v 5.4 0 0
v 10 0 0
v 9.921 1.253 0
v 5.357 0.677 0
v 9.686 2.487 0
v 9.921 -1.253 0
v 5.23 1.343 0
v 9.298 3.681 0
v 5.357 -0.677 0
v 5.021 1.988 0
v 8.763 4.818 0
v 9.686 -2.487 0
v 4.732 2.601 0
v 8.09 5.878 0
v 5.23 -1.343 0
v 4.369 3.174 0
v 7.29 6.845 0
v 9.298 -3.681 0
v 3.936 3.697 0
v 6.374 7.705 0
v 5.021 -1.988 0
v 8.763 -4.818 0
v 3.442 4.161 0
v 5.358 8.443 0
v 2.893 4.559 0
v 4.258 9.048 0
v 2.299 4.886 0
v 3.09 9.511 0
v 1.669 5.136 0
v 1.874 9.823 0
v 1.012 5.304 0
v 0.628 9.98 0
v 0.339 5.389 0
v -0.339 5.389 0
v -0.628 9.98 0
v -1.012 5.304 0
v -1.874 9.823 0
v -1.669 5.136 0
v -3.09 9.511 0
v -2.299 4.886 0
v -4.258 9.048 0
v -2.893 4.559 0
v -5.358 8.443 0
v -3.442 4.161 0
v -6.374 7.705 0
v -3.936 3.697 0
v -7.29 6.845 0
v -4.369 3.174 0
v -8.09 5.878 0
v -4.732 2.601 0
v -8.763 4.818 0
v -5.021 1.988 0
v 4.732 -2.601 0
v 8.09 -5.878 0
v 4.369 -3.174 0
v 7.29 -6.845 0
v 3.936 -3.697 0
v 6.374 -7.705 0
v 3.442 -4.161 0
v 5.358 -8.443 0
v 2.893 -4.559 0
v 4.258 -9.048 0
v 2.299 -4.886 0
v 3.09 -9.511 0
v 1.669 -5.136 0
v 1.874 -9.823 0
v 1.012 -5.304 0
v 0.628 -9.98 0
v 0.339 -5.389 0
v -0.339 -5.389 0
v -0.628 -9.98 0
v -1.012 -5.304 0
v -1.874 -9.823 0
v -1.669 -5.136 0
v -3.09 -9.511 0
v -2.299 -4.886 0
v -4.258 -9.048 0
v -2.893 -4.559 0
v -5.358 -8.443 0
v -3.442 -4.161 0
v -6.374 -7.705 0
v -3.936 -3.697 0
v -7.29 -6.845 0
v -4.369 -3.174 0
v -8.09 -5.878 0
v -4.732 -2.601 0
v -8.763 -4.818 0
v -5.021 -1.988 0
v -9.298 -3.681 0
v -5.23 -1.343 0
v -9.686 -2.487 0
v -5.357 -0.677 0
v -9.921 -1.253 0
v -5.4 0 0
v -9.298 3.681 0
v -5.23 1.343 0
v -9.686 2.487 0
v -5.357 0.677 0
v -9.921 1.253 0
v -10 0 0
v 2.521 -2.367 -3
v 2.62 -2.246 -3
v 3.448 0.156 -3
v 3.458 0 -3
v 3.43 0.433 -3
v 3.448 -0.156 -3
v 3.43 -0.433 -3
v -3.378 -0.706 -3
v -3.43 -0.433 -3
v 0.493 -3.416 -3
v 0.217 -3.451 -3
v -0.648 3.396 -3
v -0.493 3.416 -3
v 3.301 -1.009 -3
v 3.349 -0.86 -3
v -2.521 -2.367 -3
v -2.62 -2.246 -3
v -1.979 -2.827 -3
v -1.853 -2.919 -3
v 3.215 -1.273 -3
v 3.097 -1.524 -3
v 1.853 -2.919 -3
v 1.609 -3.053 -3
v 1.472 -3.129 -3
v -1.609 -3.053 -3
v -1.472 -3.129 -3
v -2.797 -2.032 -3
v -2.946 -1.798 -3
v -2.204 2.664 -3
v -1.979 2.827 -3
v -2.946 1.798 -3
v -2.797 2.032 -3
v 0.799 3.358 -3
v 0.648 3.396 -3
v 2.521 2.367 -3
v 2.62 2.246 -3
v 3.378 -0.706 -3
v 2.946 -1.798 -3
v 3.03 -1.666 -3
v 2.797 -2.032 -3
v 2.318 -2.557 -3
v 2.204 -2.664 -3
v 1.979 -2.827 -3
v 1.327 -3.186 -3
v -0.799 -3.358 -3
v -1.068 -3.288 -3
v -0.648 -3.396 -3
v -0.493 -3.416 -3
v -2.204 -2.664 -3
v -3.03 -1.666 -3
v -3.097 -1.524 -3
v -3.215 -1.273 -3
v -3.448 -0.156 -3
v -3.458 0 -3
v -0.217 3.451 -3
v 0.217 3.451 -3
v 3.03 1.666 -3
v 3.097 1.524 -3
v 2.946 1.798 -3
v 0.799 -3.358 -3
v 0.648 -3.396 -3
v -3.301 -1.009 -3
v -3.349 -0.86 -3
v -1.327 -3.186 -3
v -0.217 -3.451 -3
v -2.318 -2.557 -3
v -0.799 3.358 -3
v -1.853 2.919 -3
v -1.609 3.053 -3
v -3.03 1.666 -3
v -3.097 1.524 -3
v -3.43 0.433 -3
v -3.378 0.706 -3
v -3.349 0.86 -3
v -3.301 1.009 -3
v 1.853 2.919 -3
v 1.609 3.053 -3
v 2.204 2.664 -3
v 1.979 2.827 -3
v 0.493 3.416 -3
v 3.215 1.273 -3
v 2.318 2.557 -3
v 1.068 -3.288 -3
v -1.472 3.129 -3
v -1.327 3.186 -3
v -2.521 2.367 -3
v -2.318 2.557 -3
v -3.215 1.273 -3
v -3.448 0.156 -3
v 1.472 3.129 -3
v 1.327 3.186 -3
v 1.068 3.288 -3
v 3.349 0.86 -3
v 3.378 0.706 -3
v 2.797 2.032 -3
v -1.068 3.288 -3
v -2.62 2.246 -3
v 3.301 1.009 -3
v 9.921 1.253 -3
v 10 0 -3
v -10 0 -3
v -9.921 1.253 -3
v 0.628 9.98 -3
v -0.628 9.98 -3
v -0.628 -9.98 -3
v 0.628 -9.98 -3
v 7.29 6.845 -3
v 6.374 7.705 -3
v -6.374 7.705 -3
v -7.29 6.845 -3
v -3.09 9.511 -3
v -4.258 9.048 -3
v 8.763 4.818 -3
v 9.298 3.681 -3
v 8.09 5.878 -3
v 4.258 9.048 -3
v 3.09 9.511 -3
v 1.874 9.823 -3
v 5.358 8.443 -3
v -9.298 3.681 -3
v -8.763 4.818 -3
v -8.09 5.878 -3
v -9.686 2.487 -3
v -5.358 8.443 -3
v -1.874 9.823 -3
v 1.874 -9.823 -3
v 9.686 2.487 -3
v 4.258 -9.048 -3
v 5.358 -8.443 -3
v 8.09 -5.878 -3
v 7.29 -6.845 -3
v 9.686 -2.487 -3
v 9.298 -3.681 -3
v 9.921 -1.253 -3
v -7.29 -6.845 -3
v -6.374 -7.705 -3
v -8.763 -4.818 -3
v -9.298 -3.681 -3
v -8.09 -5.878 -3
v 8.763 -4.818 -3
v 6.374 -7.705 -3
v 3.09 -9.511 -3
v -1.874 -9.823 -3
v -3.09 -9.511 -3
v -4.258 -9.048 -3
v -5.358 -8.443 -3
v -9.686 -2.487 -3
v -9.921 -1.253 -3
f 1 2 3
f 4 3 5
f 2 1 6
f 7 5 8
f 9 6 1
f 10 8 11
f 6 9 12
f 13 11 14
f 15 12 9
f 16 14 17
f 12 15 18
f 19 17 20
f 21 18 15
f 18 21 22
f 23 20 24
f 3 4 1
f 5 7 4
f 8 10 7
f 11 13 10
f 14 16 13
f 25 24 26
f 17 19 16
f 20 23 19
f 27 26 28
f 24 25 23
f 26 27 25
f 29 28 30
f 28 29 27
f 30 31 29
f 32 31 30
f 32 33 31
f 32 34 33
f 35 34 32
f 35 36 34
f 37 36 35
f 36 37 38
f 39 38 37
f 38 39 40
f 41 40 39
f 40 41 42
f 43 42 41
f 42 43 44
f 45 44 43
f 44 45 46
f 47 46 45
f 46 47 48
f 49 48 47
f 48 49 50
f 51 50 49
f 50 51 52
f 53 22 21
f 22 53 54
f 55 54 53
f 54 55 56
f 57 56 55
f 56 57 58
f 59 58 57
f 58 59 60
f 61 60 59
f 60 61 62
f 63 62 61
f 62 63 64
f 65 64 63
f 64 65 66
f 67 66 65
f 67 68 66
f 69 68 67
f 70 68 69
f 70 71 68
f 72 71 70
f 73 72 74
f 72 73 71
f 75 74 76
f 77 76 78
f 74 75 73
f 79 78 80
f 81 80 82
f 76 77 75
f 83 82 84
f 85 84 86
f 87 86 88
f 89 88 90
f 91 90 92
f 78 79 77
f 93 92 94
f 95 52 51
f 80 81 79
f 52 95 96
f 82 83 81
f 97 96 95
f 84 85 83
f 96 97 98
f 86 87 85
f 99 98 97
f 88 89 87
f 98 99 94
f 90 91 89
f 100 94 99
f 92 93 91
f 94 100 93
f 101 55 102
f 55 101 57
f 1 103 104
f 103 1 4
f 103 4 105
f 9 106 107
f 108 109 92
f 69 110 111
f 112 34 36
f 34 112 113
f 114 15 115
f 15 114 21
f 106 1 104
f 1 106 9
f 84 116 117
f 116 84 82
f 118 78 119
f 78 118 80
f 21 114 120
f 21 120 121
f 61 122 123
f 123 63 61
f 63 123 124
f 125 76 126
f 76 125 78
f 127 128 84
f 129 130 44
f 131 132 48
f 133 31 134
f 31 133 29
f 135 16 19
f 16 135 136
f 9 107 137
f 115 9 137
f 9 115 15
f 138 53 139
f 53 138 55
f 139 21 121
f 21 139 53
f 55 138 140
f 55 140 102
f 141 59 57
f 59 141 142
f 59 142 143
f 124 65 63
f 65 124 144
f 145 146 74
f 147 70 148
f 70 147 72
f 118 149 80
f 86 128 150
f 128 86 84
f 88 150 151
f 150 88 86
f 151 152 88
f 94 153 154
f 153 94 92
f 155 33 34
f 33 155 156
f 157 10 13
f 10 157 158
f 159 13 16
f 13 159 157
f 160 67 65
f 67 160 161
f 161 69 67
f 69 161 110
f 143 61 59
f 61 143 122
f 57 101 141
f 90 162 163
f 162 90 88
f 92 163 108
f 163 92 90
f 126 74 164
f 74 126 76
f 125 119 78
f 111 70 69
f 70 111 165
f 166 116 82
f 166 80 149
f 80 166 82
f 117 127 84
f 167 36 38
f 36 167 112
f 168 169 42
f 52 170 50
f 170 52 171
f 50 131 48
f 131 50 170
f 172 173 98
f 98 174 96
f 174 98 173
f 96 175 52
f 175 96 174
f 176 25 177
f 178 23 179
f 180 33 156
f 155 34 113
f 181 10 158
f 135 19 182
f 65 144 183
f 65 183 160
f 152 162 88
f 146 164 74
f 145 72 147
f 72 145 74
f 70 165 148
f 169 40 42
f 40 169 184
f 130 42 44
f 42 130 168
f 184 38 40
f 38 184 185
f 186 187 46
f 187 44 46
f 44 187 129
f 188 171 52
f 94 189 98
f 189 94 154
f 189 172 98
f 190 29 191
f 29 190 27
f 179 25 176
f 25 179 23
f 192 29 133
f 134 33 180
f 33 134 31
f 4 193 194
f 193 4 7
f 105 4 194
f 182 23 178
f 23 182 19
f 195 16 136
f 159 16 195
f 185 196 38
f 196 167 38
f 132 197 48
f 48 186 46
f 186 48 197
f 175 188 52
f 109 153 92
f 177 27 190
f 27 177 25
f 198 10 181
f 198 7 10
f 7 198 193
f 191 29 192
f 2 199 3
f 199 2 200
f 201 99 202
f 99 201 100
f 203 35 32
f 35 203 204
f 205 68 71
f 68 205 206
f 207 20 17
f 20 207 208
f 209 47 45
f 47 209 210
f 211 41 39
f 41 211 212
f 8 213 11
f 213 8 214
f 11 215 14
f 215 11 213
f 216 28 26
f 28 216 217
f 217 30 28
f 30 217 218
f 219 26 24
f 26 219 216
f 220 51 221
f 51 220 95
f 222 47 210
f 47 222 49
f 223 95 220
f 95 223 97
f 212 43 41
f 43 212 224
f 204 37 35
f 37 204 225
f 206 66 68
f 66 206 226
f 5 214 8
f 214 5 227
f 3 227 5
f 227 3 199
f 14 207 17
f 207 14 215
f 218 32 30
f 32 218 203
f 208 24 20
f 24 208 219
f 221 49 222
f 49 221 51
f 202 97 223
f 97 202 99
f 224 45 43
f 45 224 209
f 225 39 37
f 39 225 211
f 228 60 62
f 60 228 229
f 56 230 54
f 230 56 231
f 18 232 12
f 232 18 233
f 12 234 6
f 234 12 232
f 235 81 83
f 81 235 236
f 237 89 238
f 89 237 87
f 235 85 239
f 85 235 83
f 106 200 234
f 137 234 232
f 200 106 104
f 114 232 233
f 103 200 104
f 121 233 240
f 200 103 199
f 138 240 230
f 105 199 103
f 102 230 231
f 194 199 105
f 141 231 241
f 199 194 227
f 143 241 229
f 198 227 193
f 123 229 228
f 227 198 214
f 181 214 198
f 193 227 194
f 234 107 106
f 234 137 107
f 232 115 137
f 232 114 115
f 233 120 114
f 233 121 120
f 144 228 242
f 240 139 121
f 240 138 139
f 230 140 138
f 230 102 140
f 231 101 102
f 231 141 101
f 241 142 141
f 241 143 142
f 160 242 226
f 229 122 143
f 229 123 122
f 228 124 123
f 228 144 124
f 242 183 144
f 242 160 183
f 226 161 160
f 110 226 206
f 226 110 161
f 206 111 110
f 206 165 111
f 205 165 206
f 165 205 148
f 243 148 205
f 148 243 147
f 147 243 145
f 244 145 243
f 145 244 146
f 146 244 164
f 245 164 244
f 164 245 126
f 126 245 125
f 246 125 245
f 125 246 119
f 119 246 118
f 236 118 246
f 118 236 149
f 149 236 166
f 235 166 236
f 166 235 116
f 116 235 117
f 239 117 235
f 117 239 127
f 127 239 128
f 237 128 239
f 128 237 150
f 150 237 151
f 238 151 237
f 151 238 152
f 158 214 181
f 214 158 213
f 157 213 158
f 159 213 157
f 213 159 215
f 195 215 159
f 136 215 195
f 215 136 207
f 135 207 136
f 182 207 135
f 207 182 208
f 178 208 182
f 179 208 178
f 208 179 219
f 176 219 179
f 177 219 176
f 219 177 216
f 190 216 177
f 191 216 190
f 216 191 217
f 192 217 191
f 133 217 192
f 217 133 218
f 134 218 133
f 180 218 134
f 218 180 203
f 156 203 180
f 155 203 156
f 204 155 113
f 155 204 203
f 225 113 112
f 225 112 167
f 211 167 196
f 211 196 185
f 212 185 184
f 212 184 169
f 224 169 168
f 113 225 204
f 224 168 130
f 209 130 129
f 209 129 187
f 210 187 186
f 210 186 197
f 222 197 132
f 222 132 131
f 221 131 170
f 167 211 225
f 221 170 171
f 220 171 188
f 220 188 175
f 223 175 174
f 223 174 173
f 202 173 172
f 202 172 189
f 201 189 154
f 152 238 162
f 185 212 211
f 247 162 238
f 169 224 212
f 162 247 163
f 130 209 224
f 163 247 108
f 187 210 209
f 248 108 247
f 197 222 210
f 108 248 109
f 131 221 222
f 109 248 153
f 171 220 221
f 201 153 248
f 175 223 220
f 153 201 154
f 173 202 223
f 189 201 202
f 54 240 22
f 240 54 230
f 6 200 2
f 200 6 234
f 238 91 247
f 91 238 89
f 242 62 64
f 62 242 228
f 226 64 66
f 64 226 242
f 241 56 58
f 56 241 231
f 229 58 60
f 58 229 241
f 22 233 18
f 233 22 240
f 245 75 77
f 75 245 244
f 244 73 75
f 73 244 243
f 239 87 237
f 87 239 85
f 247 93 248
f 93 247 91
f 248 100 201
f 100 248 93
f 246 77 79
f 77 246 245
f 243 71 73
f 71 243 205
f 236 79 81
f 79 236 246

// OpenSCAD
$fn = 50;


difference() {
	union() {
		translate(v = [0, 0, -3.0000000000]) {
			cylinder(h = 3, r = 10.0000000000);
		}
	}
	union() {
		translate(v = [0, 0, 0]) {
			rotate(a = [0, 0, 0]) {
				difference() {
					union() {
						#translate(v = [0, 0, -3.0000000000]) {
							cylinder(h = 3, r = 2.6000000000);
						}
						#translate(v = [0, 0, -3.9000000000]) {
							cylinder(h = 3.9000000000, r1 = 2.8750000000, r2 = 5.4000000000);
						}
						#translate(v = [0, 0, -3.0000000000]) {
							cylinder(h = 3, r = 2.8750000000);
						}
						#translate(v = [0, 0, -3.0000000000]) {
							cylinder(h = 3, r = 2.6000000000);
						}
					}
					union();
				}
			}
		}
	}
}
